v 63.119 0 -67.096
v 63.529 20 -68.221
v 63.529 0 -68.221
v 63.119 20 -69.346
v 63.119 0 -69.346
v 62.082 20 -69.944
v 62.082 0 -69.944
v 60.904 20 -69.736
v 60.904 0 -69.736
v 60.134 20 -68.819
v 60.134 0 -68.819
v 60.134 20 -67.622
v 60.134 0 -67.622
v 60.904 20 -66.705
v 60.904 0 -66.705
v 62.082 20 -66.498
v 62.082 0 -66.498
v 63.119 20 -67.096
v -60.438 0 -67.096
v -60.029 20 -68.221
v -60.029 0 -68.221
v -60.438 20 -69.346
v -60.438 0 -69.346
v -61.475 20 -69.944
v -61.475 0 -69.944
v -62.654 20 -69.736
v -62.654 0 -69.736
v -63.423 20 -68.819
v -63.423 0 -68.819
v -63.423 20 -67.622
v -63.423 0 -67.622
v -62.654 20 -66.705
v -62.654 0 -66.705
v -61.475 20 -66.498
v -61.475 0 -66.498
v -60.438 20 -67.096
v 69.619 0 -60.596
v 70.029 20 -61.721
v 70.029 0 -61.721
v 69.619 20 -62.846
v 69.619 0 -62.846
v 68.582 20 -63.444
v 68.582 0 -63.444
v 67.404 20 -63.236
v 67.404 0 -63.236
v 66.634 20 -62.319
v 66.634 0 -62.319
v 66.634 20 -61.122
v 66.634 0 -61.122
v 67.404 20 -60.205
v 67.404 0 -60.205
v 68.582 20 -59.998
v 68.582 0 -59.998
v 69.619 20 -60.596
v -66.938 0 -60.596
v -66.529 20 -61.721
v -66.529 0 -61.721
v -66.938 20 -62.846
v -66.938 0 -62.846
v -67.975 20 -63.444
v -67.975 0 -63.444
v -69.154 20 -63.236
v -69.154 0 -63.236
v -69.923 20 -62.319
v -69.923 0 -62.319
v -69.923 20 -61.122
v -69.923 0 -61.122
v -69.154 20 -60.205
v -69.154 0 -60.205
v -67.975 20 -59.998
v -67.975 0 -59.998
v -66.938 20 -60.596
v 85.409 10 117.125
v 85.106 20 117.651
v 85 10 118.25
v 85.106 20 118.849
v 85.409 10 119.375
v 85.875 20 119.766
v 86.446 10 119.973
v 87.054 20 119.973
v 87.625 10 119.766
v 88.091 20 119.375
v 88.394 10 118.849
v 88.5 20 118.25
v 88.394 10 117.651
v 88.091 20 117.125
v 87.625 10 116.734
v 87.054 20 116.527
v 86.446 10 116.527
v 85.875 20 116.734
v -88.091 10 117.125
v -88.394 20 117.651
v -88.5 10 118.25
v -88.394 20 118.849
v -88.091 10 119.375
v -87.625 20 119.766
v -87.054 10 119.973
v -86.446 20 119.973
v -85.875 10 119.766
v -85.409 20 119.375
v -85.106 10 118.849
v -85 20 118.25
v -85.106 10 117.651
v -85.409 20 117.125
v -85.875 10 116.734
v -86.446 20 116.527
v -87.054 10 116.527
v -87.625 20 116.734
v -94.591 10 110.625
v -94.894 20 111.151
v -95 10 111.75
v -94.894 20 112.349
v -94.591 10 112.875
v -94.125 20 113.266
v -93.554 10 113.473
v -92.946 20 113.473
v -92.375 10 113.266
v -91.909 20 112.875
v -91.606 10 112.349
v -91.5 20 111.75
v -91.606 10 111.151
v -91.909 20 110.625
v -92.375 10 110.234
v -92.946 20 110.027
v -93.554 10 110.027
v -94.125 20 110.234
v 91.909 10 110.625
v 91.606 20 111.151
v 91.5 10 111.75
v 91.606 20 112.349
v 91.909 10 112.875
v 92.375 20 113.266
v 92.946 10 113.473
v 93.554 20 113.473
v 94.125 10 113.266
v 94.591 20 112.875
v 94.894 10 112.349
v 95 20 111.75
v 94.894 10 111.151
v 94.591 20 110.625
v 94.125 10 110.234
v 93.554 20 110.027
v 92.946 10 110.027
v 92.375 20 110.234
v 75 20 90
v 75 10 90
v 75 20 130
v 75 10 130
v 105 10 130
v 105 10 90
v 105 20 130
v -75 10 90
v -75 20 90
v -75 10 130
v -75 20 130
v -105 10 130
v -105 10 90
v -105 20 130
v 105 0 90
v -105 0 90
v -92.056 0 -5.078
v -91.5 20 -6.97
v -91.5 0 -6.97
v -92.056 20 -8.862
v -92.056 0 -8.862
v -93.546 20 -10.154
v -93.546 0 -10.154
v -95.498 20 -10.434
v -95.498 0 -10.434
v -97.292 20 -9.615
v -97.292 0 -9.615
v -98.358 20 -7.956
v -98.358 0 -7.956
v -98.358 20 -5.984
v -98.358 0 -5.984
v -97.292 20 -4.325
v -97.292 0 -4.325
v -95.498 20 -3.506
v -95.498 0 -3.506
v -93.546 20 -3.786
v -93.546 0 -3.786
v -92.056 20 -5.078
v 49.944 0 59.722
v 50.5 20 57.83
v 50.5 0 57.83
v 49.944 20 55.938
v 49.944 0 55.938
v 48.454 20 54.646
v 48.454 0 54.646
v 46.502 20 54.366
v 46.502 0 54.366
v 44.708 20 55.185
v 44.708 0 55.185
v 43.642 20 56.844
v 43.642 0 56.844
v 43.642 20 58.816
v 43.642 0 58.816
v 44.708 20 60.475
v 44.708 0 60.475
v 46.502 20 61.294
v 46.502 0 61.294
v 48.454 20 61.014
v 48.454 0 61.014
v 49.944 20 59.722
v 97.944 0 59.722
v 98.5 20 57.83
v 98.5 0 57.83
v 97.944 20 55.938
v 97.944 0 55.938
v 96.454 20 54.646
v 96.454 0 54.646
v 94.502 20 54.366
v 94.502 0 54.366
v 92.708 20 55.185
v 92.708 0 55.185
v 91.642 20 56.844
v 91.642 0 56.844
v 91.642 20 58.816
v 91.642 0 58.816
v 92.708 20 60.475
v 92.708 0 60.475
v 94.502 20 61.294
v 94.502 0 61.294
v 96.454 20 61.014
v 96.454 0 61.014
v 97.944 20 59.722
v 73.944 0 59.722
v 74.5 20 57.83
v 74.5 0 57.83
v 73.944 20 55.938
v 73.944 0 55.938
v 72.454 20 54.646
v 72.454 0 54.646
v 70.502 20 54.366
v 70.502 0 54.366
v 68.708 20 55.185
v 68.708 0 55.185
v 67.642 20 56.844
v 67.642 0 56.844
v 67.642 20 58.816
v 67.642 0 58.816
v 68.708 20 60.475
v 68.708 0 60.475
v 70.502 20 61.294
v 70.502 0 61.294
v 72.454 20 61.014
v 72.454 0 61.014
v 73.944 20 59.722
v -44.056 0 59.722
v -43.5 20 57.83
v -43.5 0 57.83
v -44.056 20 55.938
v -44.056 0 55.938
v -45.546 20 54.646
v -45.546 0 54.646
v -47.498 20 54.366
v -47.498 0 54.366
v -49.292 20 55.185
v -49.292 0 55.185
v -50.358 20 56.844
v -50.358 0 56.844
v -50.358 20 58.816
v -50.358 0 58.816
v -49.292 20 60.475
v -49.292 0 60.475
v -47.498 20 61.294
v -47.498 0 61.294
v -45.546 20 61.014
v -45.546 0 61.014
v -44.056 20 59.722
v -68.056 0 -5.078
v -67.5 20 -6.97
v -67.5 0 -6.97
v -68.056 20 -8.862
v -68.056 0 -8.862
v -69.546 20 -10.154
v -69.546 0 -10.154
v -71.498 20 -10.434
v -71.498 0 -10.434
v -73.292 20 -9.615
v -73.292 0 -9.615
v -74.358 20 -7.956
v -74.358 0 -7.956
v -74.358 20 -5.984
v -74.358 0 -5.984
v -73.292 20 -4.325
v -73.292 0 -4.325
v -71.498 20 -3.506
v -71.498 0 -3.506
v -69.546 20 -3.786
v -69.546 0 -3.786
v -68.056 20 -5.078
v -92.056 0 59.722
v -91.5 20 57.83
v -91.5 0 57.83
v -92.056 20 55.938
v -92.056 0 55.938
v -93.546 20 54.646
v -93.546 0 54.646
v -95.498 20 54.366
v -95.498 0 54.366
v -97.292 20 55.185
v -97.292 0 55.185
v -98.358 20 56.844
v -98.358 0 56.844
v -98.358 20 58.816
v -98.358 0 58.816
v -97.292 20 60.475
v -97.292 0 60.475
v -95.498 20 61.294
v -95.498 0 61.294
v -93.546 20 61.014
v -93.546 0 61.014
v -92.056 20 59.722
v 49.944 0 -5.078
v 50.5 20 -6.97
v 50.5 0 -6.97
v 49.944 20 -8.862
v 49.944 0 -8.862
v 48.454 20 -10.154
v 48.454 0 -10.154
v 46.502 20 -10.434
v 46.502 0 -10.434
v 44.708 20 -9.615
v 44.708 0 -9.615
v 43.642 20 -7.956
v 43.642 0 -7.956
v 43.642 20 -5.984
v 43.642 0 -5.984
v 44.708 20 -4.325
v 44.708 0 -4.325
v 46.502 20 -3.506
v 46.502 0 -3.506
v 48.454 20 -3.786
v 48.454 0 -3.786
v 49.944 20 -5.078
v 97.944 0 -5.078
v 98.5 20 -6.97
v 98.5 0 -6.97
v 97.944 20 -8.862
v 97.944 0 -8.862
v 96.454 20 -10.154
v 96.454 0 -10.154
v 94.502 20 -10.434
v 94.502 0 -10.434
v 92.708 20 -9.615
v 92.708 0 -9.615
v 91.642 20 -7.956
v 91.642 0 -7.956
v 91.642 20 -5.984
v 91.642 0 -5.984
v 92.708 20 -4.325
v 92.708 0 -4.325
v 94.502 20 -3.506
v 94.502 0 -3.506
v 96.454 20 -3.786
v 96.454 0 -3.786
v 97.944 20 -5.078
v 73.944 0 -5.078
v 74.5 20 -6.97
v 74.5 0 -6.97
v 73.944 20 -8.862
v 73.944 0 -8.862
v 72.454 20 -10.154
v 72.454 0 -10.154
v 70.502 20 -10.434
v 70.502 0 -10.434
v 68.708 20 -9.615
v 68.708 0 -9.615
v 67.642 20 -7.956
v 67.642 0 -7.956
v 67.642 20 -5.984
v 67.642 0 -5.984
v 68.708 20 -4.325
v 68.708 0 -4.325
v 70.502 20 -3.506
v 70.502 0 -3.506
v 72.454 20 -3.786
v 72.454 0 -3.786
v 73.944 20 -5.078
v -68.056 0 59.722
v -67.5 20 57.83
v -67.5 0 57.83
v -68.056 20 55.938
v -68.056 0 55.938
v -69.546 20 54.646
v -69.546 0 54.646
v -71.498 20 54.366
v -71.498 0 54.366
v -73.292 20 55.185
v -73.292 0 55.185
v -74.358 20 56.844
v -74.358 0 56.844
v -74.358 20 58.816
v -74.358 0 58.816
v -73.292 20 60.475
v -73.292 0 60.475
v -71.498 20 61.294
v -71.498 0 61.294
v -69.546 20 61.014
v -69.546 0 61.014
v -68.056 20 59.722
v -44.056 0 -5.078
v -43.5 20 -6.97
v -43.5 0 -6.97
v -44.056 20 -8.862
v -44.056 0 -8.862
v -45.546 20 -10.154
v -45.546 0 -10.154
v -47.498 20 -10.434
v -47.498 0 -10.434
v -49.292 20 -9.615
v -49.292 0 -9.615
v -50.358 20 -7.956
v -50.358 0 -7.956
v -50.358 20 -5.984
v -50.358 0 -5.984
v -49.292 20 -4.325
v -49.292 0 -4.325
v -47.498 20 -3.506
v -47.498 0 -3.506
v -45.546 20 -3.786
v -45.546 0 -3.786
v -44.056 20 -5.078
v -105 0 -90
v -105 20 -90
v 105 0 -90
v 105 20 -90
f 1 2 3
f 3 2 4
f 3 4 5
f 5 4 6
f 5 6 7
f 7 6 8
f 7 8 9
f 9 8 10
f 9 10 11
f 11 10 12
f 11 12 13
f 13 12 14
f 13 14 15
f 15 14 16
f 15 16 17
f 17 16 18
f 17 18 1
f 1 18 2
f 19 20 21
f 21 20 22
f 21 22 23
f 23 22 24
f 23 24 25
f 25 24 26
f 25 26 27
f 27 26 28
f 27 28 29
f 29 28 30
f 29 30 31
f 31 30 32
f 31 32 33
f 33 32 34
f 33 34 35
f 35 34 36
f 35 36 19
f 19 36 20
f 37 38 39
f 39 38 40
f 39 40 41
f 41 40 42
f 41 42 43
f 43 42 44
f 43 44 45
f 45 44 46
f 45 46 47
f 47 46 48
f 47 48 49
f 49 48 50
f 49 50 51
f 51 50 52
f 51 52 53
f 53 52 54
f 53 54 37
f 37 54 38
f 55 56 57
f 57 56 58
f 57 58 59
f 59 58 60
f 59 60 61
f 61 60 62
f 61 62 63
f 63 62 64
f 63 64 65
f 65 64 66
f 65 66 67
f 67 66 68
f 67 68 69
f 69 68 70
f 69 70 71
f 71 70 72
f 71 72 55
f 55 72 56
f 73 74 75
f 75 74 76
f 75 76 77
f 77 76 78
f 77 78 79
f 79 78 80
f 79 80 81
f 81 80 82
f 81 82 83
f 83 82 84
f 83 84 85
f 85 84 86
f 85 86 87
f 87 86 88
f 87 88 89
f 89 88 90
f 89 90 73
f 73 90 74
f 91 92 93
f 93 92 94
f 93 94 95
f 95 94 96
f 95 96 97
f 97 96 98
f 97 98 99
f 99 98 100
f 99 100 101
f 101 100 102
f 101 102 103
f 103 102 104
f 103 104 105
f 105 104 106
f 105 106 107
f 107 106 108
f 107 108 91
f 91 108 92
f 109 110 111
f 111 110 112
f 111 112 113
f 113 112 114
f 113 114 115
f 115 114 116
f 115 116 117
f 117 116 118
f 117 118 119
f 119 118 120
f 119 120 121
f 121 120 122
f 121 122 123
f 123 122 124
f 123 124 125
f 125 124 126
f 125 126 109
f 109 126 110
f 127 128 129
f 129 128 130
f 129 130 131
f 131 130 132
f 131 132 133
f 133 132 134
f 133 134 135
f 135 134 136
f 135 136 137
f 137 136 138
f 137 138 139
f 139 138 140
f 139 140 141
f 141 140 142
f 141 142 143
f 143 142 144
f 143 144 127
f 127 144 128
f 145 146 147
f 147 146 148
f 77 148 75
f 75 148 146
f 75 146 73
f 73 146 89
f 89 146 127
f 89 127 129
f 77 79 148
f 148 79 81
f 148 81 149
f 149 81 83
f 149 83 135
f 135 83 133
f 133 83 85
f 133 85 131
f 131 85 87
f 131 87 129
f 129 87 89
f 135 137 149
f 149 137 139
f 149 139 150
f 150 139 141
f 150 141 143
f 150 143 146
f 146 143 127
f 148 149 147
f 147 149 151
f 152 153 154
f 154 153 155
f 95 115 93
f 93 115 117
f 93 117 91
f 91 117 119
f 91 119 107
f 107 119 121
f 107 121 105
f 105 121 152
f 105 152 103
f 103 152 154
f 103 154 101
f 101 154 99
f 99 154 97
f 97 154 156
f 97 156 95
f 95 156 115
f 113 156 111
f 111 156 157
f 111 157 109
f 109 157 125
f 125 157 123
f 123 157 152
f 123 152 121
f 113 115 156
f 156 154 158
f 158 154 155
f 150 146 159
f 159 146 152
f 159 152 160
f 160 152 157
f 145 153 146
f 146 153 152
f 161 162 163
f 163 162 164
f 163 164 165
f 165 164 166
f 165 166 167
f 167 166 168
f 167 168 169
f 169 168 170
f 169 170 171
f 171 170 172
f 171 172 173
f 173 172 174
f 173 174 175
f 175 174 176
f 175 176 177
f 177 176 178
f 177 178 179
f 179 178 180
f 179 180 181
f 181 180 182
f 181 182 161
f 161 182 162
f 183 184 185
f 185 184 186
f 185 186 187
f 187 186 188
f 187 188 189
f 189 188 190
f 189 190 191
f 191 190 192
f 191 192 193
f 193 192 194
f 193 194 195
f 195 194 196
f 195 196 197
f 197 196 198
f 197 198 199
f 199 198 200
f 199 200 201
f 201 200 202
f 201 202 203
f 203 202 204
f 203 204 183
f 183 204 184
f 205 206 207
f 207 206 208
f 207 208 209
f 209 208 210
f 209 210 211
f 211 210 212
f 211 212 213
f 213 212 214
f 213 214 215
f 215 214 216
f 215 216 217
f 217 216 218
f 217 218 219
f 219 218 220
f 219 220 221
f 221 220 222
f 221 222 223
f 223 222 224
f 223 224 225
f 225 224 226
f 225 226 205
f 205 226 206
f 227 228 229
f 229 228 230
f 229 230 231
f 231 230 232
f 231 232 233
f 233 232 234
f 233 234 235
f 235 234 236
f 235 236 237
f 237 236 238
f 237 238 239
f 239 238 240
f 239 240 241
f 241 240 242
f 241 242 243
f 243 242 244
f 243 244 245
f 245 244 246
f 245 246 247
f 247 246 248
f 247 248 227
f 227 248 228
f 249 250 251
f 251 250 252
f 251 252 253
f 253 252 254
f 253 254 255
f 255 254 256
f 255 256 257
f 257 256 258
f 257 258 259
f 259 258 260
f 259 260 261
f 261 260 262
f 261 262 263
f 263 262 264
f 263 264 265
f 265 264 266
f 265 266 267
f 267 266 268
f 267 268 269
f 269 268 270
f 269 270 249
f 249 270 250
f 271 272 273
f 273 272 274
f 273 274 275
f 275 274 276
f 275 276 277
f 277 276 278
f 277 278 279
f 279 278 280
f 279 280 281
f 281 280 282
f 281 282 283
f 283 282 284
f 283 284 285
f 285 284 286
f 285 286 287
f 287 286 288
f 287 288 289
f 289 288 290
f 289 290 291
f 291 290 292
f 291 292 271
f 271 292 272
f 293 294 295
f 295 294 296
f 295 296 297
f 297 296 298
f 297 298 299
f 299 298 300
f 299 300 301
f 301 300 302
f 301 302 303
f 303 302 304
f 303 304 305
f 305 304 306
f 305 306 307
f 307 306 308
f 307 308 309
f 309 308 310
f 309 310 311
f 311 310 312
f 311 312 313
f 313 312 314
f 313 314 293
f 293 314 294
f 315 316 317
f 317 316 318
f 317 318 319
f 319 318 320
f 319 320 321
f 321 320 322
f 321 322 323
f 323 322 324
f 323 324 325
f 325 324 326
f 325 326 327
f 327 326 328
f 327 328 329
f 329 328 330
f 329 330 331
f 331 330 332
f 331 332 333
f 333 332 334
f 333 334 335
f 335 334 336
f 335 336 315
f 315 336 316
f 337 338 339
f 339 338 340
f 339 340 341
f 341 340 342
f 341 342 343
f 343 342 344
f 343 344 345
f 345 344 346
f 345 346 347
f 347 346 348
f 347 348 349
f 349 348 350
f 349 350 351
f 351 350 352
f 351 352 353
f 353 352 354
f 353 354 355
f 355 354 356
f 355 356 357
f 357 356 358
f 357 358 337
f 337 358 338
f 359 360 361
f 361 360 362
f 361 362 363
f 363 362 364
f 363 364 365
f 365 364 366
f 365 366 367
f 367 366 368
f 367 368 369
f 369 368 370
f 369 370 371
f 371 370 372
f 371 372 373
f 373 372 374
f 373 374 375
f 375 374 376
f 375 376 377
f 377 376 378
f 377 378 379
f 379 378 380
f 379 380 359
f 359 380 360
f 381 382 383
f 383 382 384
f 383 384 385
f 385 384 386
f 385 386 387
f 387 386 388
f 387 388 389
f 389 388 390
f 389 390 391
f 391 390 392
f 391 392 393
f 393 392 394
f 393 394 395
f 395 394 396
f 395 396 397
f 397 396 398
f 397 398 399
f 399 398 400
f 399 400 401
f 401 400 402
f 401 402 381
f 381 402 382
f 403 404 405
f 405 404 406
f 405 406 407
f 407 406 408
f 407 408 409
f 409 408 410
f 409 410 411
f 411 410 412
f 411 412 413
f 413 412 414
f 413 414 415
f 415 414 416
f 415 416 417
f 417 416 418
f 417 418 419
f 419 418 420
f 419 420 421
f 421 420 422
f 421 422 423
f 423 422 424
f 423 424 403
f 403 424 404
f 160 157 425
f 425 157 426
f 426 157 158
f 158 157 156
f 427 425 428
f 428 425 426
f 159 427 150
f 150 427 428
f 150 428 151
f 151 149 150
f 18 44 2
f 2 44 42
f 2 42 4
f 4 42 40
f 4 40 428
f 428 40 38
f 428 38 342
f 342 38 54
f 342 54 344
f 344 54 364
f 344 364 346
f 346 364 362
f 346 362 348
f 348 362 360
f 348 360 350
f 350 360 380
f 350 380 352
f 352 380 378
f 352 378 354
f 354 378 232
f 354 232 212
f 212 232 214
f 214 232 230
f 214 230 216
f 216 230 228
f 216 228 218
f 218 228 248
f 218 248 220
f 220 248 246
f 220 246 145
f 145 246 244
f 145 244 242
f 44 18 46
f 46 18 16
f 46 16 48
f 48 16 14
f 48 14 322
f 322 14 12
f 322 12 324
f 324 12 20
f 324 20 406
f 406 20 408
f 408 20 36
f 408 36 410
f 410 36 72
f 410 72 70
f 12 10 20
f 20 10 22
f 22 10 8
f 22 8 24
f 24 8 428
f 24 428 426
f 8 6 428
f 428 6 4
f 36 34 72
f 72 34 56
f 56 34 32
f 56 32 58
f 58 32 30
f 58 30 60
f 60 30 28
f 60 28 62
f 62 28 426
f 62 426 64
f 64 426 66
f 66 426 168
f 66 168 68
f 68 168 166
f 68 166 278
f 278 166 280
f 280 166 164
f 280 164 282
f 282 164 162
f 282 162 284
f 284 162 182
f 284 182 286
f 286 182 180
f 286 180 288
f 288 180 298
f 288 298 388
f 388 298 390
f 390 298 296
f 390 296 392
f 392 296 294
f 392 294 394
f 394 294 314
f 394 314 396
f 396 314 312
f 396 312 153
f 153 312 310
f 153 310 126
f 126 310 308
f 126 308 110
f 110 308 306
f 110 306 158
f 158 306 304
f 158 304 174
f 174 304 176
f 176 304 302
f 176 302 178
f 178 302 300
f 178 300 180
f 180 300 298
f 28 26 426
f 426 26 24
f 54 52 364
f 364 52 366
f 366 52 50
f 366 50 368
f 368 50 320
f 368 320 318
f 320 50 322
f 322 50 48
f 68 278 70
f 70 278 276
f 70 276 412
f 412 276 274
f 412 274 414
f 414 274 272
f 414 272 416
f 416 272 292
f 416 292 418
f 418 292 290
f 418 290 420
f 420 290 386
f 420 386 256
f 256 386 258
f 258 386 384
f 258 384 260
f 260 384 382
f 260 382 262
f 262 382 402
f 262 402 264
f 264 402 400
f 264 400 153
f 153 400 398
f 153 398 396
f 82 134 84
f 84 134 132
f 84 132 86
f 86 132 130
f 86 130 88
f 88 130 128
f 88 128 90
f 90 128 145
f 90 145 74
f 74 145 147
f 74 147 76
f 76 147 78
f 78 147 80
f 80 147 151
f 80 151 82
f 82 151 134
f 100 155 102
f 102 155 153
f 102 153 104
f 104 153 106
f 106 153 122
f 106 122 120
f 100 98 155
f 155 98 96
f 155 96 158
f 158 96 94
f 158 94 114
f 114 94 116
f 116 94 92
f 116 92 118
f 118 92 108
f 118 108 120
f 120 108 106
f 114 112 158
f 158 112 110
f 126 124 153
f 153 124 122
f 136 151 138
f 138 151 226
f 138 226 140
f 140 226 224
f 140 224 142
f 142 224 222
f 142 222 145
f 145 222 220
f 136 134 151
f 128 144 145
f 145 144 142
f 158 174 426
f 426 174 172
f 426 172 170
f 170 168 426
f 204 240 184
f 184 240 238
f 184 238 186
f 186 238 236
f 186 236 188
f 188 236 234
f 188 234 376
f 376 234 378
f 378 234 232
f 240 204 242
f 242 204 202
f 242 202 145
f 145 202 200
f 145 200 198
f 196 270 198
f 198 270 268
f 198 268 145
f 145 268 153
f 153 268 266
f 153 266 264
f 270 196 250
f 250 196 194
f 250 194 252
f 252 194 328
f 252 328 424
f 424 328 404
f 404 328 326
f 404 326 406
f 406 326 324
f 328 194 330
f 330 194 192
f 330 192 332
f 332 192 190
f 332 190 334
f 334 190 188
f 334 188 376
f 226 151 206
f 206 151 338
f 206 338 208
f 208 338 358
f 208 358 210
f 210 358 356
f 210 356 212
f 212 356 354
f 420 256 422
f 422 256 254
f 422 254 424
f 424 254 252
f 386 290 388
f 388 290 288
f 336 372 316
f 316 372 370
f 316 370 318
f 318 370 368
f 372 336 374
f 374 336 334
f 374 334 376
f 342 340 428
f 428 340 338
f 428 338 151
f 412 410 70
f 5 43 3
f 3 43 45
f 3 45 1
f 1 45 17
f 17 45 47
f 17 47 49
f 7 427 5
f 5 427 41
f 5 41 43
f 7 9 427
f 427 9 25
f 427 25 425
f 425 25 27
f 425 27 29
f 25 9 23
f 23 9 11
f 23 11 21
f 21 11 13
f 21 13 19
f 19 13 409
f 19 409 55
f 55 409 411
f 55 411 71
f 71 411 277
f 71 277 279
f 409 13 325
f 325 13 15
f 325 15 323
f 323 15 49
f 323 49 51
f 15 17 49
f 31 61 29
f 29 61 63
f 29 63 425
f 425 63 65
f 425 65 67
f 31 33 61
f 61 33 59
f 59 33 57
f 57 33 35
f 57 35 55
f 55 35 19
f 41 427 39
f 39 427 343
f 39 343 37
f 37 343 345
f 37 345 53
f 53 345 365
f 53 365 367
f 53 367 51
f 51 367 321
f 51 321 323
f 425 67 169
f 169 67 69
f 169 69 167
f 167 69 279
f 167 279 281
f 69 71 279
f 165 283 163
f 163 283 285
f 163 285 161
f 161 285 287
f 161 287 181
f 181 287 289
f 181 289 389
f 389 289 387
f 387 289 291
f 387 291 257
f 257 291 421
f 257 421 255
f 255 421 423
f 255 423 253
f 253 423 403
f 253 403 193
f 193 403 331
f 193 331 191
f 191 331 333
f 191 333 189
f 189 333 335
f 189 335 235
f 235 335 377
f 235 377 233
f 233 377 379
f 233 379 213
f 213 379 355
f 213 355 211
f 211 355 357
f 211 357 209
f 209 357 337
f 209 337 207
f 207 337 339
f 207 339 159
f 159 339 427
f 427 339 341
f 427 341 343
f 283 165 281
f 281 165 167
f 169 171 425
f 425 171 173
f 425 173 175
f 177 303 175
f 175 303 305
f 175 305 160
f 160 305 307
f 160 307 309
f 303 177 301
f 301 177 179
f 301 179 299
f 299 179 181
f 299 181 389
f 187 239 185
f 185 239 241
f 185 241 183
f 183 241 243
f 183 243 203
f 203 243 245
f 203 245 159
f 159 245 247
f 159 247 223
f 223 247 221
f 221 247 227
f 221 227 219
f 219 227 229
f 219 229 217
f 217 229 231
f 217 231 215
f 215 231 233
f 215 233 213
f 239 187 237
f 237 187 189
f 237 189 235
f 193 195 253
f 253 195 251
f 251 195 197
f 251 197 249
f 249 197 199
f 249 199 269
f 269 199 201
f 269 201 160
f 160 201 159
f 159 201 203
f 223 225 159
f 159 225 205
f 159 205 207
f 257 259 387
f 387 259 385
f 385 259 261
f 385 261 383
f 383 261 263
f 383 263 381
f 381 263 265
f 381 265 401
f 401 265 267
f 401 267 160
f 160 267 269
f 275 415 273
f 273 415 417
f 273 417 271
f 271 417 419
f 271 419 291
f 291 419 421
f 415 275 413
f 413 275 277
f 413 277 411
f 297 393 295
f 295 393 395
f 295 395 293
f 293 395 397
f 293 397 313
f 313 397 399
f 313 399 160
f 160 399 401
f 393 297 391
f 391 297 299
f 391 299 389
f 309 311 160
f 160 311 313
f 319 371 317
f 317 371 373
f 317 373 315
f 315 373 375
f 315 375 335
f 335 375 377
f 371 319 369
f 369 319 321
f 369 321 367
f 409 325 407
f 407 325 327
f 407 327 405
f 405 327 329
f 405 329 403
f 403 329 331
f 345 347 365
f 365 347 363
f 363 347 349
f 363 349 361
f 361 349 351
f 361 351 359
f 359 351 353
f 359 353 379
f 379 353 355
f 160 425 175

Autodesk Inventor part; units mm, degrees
ref_plane "YZ Plane" through (0, 0, 0) normal (1, 0, 0) x (0, 1, 0)
ref_plane "XZ Plane" through (0, 0, 0) normal (0, 1, 0) x (-1, 0, 0)
ref_plane "XY Plane" through (0, 0, 0) normal (0, 0, 1) x (1, 0, 0)
sketch "Boceto1" plane through (0, 0, 0) normal (0, 1, 0) x (-1, 0, 0)
  line L0 (105, 90) -> (-105, 90)
  line L1 (-105, 90) -> (-105, -90)
  line L2 (-105, -90) -> (105, -90)
  line L3 (105, -90) -> (105, 90)
  line L4 (105, 90) -> (-105, -90) construction
  line L5 (-105, 90) -> (105, -90) construction
  point P0 (0, 0)
  dimension "d0" = 210
  dimension "d1" = 180
extrude "Extrusión1" add sketch "Boceto1" along normal blind 20
sketch "Boceto2" plane through (0, 20, 0) normal (0, 1, 0) x (1, 0, 0)
  circle A0 centre (-95, -57.83) radius 3.5
  line L0 (-105, -65.43) -> (-37, -65.43)
  line L1 (-37, -65.43) -> (-37, 14.57)
  line L2 (-37, 14.57) -> (-105, 14.57)
  line L3 (-105, 14.57) -> (-105, -65.43)
  line L4 (-71, -65.43) -> (-71, -8.508)
  circle A1 centre (-71, -57.83) radius 3.5
  circle A2 centre (-47, -57.83) radius 3.5
  line L5 (-37, -25.43) -> (-48.2072, -25.43)
  circle A3 centre (-47, 6.97) radius 3.5
  circle A4 centre (-71, 6.97) radius 3.5
  circle A5 centre (-95, 6.97) radius 3.5
  line L6 (0, 0) -> (0, 47.1145)
  circle A6 centre (95, -57.83) radius 3.5
  line L7 (105, -65.43) -> (37, -65.43)
  line L8 (37, -65.43) -> (37, 14.57)
  line L9 (37, 14.57) -> (105, 14.57)
  line L10 (105, 14.57) -> (105, -65.43)
  line L11 (71, -65.43) -> (71, -8.508)
  circle A7 centre (71, -57.83) radius 3.5
  circle A8 centre (47, -57.83) radius 3.5
  line L12 (37, -25.43) -> (48.2072, -25.43)
  circle A9 centre (47, 6.97) radius 3.5
  circle A10 centre (71, 6.97) radius 3.5
  circle A11 centre (95, 6.97) radius 3.5
  circle A12 centre (-65, 65) radius 5
  circle A13 centre (65, 65) radius 5
  circle A14 centre (65, 65) radius 5
  line L13 (0, 0) -> (210, 0)
  line L14 (0, 0) -> (210, 0)
  line L15 (210, 0) -> (105, 0)
  circle A15 centre (40, -25) radius 5
  circle A16 centre (0, -75) radius 10
  line L16 (-105, -90) -> (105, -90) projected
  line L17 (105, 90) -> (-105, 90) projected
  line L18 (-105, 90) -> (-105, -90) projected
  dimension "d4" = 7
  dimension "d5" = 68
  dimension "d6" = 80
  dimension "d7" = 7.6
  dimension "d8" = 10
  dimension "d9" = 7
  dimension "d11" = 24
  dimension "d14" = 10
  dimension "d16" = 10
  dimension "d30" = 20
  dimension "d31" = 0
  dimension "d32" = 15
  dimension "d101" = 25
  dimension "d102" = 40
extrude "Extrusión2" cut sketch "Boceto2" against normal blind 20 contours A0 | A1 L4 | L4 A1 | A2 | A3 | A4 | A5 | A6 | A7 L11 | L11 A7 | A8 | A9 | A10 | A11
sketch "Boceto7" plane through (-105, 0, 90) normal (0, 0, 1) x (1, 0, 0)
  line L0 (0, 10) -> (29.9999, 10)
  line L1 (29.9999, 20) -> (29.9999, 10)
  line L2 (0, 10) -> (29.9999, 10)
  line L3 (29.9999, 10) -> (29.9999, 20)
  line L4 (29.9999, 20) -> (0, 20)
  line L5 (0, 20) -> (0, 10)
  line L6 (180.0001, 10) -> (210, 10)
  line L7 (210, 10) -> (210, 20)
  line L8 (180.0001, 10) -> (210, 10)
  line L9 (210, 10) -> (210, 20)
  line L10 (210, 20) -> (180.0001, 20)
  line L11 (180.0001, 20) -> (180.0001, 10)
  line L12 (0, 0) -> (0, 20) projected
  line L13 (210, 0) -> (210, 20) projected
  point P0 (105, 0)
  point P1 (0, 10)
  dimension "d79" = 29.9999
  dimension "d80" = 10
  dimension "d81" = 0
  dimension "d82" = 10
  dimension "d83" = 29.9999
  dimension "d84" = 0
extrude "Extrusión7" add sketch "Boceto7" along normal blind 40
sketch "Boceto8" plane through (0, 20, 0) normal (0, 1, 0) x (1, 0, 0)
  line L0 (-105, -90) -> (-105, -130)
  line L1 (-64.3507, -90) -> (-74.3507, -90)
  line L2 (-105, -130) -> (-75.0001, -130)
  line L3 (-75.0001, -130) -> (-75.0001, -90)
  line L4 (-75.0001, -90) -> (-105, -90)
  line L5 (-55.1959, -89.9497) -> (-75.0001, -90)
  circle A0 centre (-93.25, -111.75) radius 1.75
  circle A1 centre (-86.75, -118.25) radius 1.75
  line L6 (-75.0001, -90) -> (75.0001, -90) projected
  line L7 (0, -90) -> (0, -111.75)
  circle A2 centre (86.75, -118.25) radius 1.75
  circle A3 centre (93.25, -111.75) radius 1.75
  point P0 (0, 0)
  point P1 (-63.4459, -118.25)
  point P2 (-86.75, -111.75)
  point P3 (-105, -16)
  point P4 (86.75, -111.75)
  dimension "d67" = 11.7499
  dimension "d86" = 40
  dimension "d87" = 29.9999
  dimension "d88" = 21.75
  dimension "d89" = 11.75
  dimension "d90" = 28.3003
  dimension "d91" = 11.7499
hole "Agujero1" at (-86.75, 20, 118.25) at (-93.25, 20, 111.75) at (86.75, 20, 118.25) at (93.25, 20, 111.75) direction (0, -1, 0) diameter 3.5 end through all
sketch "Boceto9" plane through (0, 20, 0) normal (0, 1, 0) x (1, 0, 0)
  circle A0 centre (61.7786, 68.221) radius 1.75
  line L0 (60.0286, 59.971) -> (70.0286, 59.971)
  line L1 (70.0286, 59.971) -> (70.0286, 69.971)
  line L2 (70.0286, 69.971) -> (60.0286, 69.971)
  line L3 (60.0286, 69.971) -> (60.0286, 59.971)
  line L4 (60.0286, 59.971) -> (70.0286, 69.971) construction
  line L5 (70.0286, 59.971) -> (60.0286, 69.971) construction
  circle A1 centre (68.2786, 61.721) radius 1.75
  line L6 (105, 90) -> (-105, 90) projected
  line L7 (-60.0286, 69.971) -> (-60.0286, 59.971)
  line L8 (-70.0286, 59.971) -> (-70.0286, 69.971)
  line L9 (-60.0286, 59.971) -> (-70.0286, 69.971) construction
  line L10 (-70.0286, 59.971) -> (-60.0286, 69.971) construction
  line L11 (-60.0286, 59.971) -> (-70.0286, 59.971)
  circle A2 centre (-68.2786, 61.721) radius 1.75
  line L12 (-70.0286, 69.971) -> (-60.0286, 69.971)
  circle A3 centre (-61.7786, 68.221) radius 1.75
  point P0 (0, 0)
  point P1 (70.0286, 64.971)
  point P2 (-70.0286, 64.971)
extrude "Extrusión8" cut sketch "Boceto9" against normal blind 20 contours A0 | A1 | A3 | A2
properties part number "base_back"
